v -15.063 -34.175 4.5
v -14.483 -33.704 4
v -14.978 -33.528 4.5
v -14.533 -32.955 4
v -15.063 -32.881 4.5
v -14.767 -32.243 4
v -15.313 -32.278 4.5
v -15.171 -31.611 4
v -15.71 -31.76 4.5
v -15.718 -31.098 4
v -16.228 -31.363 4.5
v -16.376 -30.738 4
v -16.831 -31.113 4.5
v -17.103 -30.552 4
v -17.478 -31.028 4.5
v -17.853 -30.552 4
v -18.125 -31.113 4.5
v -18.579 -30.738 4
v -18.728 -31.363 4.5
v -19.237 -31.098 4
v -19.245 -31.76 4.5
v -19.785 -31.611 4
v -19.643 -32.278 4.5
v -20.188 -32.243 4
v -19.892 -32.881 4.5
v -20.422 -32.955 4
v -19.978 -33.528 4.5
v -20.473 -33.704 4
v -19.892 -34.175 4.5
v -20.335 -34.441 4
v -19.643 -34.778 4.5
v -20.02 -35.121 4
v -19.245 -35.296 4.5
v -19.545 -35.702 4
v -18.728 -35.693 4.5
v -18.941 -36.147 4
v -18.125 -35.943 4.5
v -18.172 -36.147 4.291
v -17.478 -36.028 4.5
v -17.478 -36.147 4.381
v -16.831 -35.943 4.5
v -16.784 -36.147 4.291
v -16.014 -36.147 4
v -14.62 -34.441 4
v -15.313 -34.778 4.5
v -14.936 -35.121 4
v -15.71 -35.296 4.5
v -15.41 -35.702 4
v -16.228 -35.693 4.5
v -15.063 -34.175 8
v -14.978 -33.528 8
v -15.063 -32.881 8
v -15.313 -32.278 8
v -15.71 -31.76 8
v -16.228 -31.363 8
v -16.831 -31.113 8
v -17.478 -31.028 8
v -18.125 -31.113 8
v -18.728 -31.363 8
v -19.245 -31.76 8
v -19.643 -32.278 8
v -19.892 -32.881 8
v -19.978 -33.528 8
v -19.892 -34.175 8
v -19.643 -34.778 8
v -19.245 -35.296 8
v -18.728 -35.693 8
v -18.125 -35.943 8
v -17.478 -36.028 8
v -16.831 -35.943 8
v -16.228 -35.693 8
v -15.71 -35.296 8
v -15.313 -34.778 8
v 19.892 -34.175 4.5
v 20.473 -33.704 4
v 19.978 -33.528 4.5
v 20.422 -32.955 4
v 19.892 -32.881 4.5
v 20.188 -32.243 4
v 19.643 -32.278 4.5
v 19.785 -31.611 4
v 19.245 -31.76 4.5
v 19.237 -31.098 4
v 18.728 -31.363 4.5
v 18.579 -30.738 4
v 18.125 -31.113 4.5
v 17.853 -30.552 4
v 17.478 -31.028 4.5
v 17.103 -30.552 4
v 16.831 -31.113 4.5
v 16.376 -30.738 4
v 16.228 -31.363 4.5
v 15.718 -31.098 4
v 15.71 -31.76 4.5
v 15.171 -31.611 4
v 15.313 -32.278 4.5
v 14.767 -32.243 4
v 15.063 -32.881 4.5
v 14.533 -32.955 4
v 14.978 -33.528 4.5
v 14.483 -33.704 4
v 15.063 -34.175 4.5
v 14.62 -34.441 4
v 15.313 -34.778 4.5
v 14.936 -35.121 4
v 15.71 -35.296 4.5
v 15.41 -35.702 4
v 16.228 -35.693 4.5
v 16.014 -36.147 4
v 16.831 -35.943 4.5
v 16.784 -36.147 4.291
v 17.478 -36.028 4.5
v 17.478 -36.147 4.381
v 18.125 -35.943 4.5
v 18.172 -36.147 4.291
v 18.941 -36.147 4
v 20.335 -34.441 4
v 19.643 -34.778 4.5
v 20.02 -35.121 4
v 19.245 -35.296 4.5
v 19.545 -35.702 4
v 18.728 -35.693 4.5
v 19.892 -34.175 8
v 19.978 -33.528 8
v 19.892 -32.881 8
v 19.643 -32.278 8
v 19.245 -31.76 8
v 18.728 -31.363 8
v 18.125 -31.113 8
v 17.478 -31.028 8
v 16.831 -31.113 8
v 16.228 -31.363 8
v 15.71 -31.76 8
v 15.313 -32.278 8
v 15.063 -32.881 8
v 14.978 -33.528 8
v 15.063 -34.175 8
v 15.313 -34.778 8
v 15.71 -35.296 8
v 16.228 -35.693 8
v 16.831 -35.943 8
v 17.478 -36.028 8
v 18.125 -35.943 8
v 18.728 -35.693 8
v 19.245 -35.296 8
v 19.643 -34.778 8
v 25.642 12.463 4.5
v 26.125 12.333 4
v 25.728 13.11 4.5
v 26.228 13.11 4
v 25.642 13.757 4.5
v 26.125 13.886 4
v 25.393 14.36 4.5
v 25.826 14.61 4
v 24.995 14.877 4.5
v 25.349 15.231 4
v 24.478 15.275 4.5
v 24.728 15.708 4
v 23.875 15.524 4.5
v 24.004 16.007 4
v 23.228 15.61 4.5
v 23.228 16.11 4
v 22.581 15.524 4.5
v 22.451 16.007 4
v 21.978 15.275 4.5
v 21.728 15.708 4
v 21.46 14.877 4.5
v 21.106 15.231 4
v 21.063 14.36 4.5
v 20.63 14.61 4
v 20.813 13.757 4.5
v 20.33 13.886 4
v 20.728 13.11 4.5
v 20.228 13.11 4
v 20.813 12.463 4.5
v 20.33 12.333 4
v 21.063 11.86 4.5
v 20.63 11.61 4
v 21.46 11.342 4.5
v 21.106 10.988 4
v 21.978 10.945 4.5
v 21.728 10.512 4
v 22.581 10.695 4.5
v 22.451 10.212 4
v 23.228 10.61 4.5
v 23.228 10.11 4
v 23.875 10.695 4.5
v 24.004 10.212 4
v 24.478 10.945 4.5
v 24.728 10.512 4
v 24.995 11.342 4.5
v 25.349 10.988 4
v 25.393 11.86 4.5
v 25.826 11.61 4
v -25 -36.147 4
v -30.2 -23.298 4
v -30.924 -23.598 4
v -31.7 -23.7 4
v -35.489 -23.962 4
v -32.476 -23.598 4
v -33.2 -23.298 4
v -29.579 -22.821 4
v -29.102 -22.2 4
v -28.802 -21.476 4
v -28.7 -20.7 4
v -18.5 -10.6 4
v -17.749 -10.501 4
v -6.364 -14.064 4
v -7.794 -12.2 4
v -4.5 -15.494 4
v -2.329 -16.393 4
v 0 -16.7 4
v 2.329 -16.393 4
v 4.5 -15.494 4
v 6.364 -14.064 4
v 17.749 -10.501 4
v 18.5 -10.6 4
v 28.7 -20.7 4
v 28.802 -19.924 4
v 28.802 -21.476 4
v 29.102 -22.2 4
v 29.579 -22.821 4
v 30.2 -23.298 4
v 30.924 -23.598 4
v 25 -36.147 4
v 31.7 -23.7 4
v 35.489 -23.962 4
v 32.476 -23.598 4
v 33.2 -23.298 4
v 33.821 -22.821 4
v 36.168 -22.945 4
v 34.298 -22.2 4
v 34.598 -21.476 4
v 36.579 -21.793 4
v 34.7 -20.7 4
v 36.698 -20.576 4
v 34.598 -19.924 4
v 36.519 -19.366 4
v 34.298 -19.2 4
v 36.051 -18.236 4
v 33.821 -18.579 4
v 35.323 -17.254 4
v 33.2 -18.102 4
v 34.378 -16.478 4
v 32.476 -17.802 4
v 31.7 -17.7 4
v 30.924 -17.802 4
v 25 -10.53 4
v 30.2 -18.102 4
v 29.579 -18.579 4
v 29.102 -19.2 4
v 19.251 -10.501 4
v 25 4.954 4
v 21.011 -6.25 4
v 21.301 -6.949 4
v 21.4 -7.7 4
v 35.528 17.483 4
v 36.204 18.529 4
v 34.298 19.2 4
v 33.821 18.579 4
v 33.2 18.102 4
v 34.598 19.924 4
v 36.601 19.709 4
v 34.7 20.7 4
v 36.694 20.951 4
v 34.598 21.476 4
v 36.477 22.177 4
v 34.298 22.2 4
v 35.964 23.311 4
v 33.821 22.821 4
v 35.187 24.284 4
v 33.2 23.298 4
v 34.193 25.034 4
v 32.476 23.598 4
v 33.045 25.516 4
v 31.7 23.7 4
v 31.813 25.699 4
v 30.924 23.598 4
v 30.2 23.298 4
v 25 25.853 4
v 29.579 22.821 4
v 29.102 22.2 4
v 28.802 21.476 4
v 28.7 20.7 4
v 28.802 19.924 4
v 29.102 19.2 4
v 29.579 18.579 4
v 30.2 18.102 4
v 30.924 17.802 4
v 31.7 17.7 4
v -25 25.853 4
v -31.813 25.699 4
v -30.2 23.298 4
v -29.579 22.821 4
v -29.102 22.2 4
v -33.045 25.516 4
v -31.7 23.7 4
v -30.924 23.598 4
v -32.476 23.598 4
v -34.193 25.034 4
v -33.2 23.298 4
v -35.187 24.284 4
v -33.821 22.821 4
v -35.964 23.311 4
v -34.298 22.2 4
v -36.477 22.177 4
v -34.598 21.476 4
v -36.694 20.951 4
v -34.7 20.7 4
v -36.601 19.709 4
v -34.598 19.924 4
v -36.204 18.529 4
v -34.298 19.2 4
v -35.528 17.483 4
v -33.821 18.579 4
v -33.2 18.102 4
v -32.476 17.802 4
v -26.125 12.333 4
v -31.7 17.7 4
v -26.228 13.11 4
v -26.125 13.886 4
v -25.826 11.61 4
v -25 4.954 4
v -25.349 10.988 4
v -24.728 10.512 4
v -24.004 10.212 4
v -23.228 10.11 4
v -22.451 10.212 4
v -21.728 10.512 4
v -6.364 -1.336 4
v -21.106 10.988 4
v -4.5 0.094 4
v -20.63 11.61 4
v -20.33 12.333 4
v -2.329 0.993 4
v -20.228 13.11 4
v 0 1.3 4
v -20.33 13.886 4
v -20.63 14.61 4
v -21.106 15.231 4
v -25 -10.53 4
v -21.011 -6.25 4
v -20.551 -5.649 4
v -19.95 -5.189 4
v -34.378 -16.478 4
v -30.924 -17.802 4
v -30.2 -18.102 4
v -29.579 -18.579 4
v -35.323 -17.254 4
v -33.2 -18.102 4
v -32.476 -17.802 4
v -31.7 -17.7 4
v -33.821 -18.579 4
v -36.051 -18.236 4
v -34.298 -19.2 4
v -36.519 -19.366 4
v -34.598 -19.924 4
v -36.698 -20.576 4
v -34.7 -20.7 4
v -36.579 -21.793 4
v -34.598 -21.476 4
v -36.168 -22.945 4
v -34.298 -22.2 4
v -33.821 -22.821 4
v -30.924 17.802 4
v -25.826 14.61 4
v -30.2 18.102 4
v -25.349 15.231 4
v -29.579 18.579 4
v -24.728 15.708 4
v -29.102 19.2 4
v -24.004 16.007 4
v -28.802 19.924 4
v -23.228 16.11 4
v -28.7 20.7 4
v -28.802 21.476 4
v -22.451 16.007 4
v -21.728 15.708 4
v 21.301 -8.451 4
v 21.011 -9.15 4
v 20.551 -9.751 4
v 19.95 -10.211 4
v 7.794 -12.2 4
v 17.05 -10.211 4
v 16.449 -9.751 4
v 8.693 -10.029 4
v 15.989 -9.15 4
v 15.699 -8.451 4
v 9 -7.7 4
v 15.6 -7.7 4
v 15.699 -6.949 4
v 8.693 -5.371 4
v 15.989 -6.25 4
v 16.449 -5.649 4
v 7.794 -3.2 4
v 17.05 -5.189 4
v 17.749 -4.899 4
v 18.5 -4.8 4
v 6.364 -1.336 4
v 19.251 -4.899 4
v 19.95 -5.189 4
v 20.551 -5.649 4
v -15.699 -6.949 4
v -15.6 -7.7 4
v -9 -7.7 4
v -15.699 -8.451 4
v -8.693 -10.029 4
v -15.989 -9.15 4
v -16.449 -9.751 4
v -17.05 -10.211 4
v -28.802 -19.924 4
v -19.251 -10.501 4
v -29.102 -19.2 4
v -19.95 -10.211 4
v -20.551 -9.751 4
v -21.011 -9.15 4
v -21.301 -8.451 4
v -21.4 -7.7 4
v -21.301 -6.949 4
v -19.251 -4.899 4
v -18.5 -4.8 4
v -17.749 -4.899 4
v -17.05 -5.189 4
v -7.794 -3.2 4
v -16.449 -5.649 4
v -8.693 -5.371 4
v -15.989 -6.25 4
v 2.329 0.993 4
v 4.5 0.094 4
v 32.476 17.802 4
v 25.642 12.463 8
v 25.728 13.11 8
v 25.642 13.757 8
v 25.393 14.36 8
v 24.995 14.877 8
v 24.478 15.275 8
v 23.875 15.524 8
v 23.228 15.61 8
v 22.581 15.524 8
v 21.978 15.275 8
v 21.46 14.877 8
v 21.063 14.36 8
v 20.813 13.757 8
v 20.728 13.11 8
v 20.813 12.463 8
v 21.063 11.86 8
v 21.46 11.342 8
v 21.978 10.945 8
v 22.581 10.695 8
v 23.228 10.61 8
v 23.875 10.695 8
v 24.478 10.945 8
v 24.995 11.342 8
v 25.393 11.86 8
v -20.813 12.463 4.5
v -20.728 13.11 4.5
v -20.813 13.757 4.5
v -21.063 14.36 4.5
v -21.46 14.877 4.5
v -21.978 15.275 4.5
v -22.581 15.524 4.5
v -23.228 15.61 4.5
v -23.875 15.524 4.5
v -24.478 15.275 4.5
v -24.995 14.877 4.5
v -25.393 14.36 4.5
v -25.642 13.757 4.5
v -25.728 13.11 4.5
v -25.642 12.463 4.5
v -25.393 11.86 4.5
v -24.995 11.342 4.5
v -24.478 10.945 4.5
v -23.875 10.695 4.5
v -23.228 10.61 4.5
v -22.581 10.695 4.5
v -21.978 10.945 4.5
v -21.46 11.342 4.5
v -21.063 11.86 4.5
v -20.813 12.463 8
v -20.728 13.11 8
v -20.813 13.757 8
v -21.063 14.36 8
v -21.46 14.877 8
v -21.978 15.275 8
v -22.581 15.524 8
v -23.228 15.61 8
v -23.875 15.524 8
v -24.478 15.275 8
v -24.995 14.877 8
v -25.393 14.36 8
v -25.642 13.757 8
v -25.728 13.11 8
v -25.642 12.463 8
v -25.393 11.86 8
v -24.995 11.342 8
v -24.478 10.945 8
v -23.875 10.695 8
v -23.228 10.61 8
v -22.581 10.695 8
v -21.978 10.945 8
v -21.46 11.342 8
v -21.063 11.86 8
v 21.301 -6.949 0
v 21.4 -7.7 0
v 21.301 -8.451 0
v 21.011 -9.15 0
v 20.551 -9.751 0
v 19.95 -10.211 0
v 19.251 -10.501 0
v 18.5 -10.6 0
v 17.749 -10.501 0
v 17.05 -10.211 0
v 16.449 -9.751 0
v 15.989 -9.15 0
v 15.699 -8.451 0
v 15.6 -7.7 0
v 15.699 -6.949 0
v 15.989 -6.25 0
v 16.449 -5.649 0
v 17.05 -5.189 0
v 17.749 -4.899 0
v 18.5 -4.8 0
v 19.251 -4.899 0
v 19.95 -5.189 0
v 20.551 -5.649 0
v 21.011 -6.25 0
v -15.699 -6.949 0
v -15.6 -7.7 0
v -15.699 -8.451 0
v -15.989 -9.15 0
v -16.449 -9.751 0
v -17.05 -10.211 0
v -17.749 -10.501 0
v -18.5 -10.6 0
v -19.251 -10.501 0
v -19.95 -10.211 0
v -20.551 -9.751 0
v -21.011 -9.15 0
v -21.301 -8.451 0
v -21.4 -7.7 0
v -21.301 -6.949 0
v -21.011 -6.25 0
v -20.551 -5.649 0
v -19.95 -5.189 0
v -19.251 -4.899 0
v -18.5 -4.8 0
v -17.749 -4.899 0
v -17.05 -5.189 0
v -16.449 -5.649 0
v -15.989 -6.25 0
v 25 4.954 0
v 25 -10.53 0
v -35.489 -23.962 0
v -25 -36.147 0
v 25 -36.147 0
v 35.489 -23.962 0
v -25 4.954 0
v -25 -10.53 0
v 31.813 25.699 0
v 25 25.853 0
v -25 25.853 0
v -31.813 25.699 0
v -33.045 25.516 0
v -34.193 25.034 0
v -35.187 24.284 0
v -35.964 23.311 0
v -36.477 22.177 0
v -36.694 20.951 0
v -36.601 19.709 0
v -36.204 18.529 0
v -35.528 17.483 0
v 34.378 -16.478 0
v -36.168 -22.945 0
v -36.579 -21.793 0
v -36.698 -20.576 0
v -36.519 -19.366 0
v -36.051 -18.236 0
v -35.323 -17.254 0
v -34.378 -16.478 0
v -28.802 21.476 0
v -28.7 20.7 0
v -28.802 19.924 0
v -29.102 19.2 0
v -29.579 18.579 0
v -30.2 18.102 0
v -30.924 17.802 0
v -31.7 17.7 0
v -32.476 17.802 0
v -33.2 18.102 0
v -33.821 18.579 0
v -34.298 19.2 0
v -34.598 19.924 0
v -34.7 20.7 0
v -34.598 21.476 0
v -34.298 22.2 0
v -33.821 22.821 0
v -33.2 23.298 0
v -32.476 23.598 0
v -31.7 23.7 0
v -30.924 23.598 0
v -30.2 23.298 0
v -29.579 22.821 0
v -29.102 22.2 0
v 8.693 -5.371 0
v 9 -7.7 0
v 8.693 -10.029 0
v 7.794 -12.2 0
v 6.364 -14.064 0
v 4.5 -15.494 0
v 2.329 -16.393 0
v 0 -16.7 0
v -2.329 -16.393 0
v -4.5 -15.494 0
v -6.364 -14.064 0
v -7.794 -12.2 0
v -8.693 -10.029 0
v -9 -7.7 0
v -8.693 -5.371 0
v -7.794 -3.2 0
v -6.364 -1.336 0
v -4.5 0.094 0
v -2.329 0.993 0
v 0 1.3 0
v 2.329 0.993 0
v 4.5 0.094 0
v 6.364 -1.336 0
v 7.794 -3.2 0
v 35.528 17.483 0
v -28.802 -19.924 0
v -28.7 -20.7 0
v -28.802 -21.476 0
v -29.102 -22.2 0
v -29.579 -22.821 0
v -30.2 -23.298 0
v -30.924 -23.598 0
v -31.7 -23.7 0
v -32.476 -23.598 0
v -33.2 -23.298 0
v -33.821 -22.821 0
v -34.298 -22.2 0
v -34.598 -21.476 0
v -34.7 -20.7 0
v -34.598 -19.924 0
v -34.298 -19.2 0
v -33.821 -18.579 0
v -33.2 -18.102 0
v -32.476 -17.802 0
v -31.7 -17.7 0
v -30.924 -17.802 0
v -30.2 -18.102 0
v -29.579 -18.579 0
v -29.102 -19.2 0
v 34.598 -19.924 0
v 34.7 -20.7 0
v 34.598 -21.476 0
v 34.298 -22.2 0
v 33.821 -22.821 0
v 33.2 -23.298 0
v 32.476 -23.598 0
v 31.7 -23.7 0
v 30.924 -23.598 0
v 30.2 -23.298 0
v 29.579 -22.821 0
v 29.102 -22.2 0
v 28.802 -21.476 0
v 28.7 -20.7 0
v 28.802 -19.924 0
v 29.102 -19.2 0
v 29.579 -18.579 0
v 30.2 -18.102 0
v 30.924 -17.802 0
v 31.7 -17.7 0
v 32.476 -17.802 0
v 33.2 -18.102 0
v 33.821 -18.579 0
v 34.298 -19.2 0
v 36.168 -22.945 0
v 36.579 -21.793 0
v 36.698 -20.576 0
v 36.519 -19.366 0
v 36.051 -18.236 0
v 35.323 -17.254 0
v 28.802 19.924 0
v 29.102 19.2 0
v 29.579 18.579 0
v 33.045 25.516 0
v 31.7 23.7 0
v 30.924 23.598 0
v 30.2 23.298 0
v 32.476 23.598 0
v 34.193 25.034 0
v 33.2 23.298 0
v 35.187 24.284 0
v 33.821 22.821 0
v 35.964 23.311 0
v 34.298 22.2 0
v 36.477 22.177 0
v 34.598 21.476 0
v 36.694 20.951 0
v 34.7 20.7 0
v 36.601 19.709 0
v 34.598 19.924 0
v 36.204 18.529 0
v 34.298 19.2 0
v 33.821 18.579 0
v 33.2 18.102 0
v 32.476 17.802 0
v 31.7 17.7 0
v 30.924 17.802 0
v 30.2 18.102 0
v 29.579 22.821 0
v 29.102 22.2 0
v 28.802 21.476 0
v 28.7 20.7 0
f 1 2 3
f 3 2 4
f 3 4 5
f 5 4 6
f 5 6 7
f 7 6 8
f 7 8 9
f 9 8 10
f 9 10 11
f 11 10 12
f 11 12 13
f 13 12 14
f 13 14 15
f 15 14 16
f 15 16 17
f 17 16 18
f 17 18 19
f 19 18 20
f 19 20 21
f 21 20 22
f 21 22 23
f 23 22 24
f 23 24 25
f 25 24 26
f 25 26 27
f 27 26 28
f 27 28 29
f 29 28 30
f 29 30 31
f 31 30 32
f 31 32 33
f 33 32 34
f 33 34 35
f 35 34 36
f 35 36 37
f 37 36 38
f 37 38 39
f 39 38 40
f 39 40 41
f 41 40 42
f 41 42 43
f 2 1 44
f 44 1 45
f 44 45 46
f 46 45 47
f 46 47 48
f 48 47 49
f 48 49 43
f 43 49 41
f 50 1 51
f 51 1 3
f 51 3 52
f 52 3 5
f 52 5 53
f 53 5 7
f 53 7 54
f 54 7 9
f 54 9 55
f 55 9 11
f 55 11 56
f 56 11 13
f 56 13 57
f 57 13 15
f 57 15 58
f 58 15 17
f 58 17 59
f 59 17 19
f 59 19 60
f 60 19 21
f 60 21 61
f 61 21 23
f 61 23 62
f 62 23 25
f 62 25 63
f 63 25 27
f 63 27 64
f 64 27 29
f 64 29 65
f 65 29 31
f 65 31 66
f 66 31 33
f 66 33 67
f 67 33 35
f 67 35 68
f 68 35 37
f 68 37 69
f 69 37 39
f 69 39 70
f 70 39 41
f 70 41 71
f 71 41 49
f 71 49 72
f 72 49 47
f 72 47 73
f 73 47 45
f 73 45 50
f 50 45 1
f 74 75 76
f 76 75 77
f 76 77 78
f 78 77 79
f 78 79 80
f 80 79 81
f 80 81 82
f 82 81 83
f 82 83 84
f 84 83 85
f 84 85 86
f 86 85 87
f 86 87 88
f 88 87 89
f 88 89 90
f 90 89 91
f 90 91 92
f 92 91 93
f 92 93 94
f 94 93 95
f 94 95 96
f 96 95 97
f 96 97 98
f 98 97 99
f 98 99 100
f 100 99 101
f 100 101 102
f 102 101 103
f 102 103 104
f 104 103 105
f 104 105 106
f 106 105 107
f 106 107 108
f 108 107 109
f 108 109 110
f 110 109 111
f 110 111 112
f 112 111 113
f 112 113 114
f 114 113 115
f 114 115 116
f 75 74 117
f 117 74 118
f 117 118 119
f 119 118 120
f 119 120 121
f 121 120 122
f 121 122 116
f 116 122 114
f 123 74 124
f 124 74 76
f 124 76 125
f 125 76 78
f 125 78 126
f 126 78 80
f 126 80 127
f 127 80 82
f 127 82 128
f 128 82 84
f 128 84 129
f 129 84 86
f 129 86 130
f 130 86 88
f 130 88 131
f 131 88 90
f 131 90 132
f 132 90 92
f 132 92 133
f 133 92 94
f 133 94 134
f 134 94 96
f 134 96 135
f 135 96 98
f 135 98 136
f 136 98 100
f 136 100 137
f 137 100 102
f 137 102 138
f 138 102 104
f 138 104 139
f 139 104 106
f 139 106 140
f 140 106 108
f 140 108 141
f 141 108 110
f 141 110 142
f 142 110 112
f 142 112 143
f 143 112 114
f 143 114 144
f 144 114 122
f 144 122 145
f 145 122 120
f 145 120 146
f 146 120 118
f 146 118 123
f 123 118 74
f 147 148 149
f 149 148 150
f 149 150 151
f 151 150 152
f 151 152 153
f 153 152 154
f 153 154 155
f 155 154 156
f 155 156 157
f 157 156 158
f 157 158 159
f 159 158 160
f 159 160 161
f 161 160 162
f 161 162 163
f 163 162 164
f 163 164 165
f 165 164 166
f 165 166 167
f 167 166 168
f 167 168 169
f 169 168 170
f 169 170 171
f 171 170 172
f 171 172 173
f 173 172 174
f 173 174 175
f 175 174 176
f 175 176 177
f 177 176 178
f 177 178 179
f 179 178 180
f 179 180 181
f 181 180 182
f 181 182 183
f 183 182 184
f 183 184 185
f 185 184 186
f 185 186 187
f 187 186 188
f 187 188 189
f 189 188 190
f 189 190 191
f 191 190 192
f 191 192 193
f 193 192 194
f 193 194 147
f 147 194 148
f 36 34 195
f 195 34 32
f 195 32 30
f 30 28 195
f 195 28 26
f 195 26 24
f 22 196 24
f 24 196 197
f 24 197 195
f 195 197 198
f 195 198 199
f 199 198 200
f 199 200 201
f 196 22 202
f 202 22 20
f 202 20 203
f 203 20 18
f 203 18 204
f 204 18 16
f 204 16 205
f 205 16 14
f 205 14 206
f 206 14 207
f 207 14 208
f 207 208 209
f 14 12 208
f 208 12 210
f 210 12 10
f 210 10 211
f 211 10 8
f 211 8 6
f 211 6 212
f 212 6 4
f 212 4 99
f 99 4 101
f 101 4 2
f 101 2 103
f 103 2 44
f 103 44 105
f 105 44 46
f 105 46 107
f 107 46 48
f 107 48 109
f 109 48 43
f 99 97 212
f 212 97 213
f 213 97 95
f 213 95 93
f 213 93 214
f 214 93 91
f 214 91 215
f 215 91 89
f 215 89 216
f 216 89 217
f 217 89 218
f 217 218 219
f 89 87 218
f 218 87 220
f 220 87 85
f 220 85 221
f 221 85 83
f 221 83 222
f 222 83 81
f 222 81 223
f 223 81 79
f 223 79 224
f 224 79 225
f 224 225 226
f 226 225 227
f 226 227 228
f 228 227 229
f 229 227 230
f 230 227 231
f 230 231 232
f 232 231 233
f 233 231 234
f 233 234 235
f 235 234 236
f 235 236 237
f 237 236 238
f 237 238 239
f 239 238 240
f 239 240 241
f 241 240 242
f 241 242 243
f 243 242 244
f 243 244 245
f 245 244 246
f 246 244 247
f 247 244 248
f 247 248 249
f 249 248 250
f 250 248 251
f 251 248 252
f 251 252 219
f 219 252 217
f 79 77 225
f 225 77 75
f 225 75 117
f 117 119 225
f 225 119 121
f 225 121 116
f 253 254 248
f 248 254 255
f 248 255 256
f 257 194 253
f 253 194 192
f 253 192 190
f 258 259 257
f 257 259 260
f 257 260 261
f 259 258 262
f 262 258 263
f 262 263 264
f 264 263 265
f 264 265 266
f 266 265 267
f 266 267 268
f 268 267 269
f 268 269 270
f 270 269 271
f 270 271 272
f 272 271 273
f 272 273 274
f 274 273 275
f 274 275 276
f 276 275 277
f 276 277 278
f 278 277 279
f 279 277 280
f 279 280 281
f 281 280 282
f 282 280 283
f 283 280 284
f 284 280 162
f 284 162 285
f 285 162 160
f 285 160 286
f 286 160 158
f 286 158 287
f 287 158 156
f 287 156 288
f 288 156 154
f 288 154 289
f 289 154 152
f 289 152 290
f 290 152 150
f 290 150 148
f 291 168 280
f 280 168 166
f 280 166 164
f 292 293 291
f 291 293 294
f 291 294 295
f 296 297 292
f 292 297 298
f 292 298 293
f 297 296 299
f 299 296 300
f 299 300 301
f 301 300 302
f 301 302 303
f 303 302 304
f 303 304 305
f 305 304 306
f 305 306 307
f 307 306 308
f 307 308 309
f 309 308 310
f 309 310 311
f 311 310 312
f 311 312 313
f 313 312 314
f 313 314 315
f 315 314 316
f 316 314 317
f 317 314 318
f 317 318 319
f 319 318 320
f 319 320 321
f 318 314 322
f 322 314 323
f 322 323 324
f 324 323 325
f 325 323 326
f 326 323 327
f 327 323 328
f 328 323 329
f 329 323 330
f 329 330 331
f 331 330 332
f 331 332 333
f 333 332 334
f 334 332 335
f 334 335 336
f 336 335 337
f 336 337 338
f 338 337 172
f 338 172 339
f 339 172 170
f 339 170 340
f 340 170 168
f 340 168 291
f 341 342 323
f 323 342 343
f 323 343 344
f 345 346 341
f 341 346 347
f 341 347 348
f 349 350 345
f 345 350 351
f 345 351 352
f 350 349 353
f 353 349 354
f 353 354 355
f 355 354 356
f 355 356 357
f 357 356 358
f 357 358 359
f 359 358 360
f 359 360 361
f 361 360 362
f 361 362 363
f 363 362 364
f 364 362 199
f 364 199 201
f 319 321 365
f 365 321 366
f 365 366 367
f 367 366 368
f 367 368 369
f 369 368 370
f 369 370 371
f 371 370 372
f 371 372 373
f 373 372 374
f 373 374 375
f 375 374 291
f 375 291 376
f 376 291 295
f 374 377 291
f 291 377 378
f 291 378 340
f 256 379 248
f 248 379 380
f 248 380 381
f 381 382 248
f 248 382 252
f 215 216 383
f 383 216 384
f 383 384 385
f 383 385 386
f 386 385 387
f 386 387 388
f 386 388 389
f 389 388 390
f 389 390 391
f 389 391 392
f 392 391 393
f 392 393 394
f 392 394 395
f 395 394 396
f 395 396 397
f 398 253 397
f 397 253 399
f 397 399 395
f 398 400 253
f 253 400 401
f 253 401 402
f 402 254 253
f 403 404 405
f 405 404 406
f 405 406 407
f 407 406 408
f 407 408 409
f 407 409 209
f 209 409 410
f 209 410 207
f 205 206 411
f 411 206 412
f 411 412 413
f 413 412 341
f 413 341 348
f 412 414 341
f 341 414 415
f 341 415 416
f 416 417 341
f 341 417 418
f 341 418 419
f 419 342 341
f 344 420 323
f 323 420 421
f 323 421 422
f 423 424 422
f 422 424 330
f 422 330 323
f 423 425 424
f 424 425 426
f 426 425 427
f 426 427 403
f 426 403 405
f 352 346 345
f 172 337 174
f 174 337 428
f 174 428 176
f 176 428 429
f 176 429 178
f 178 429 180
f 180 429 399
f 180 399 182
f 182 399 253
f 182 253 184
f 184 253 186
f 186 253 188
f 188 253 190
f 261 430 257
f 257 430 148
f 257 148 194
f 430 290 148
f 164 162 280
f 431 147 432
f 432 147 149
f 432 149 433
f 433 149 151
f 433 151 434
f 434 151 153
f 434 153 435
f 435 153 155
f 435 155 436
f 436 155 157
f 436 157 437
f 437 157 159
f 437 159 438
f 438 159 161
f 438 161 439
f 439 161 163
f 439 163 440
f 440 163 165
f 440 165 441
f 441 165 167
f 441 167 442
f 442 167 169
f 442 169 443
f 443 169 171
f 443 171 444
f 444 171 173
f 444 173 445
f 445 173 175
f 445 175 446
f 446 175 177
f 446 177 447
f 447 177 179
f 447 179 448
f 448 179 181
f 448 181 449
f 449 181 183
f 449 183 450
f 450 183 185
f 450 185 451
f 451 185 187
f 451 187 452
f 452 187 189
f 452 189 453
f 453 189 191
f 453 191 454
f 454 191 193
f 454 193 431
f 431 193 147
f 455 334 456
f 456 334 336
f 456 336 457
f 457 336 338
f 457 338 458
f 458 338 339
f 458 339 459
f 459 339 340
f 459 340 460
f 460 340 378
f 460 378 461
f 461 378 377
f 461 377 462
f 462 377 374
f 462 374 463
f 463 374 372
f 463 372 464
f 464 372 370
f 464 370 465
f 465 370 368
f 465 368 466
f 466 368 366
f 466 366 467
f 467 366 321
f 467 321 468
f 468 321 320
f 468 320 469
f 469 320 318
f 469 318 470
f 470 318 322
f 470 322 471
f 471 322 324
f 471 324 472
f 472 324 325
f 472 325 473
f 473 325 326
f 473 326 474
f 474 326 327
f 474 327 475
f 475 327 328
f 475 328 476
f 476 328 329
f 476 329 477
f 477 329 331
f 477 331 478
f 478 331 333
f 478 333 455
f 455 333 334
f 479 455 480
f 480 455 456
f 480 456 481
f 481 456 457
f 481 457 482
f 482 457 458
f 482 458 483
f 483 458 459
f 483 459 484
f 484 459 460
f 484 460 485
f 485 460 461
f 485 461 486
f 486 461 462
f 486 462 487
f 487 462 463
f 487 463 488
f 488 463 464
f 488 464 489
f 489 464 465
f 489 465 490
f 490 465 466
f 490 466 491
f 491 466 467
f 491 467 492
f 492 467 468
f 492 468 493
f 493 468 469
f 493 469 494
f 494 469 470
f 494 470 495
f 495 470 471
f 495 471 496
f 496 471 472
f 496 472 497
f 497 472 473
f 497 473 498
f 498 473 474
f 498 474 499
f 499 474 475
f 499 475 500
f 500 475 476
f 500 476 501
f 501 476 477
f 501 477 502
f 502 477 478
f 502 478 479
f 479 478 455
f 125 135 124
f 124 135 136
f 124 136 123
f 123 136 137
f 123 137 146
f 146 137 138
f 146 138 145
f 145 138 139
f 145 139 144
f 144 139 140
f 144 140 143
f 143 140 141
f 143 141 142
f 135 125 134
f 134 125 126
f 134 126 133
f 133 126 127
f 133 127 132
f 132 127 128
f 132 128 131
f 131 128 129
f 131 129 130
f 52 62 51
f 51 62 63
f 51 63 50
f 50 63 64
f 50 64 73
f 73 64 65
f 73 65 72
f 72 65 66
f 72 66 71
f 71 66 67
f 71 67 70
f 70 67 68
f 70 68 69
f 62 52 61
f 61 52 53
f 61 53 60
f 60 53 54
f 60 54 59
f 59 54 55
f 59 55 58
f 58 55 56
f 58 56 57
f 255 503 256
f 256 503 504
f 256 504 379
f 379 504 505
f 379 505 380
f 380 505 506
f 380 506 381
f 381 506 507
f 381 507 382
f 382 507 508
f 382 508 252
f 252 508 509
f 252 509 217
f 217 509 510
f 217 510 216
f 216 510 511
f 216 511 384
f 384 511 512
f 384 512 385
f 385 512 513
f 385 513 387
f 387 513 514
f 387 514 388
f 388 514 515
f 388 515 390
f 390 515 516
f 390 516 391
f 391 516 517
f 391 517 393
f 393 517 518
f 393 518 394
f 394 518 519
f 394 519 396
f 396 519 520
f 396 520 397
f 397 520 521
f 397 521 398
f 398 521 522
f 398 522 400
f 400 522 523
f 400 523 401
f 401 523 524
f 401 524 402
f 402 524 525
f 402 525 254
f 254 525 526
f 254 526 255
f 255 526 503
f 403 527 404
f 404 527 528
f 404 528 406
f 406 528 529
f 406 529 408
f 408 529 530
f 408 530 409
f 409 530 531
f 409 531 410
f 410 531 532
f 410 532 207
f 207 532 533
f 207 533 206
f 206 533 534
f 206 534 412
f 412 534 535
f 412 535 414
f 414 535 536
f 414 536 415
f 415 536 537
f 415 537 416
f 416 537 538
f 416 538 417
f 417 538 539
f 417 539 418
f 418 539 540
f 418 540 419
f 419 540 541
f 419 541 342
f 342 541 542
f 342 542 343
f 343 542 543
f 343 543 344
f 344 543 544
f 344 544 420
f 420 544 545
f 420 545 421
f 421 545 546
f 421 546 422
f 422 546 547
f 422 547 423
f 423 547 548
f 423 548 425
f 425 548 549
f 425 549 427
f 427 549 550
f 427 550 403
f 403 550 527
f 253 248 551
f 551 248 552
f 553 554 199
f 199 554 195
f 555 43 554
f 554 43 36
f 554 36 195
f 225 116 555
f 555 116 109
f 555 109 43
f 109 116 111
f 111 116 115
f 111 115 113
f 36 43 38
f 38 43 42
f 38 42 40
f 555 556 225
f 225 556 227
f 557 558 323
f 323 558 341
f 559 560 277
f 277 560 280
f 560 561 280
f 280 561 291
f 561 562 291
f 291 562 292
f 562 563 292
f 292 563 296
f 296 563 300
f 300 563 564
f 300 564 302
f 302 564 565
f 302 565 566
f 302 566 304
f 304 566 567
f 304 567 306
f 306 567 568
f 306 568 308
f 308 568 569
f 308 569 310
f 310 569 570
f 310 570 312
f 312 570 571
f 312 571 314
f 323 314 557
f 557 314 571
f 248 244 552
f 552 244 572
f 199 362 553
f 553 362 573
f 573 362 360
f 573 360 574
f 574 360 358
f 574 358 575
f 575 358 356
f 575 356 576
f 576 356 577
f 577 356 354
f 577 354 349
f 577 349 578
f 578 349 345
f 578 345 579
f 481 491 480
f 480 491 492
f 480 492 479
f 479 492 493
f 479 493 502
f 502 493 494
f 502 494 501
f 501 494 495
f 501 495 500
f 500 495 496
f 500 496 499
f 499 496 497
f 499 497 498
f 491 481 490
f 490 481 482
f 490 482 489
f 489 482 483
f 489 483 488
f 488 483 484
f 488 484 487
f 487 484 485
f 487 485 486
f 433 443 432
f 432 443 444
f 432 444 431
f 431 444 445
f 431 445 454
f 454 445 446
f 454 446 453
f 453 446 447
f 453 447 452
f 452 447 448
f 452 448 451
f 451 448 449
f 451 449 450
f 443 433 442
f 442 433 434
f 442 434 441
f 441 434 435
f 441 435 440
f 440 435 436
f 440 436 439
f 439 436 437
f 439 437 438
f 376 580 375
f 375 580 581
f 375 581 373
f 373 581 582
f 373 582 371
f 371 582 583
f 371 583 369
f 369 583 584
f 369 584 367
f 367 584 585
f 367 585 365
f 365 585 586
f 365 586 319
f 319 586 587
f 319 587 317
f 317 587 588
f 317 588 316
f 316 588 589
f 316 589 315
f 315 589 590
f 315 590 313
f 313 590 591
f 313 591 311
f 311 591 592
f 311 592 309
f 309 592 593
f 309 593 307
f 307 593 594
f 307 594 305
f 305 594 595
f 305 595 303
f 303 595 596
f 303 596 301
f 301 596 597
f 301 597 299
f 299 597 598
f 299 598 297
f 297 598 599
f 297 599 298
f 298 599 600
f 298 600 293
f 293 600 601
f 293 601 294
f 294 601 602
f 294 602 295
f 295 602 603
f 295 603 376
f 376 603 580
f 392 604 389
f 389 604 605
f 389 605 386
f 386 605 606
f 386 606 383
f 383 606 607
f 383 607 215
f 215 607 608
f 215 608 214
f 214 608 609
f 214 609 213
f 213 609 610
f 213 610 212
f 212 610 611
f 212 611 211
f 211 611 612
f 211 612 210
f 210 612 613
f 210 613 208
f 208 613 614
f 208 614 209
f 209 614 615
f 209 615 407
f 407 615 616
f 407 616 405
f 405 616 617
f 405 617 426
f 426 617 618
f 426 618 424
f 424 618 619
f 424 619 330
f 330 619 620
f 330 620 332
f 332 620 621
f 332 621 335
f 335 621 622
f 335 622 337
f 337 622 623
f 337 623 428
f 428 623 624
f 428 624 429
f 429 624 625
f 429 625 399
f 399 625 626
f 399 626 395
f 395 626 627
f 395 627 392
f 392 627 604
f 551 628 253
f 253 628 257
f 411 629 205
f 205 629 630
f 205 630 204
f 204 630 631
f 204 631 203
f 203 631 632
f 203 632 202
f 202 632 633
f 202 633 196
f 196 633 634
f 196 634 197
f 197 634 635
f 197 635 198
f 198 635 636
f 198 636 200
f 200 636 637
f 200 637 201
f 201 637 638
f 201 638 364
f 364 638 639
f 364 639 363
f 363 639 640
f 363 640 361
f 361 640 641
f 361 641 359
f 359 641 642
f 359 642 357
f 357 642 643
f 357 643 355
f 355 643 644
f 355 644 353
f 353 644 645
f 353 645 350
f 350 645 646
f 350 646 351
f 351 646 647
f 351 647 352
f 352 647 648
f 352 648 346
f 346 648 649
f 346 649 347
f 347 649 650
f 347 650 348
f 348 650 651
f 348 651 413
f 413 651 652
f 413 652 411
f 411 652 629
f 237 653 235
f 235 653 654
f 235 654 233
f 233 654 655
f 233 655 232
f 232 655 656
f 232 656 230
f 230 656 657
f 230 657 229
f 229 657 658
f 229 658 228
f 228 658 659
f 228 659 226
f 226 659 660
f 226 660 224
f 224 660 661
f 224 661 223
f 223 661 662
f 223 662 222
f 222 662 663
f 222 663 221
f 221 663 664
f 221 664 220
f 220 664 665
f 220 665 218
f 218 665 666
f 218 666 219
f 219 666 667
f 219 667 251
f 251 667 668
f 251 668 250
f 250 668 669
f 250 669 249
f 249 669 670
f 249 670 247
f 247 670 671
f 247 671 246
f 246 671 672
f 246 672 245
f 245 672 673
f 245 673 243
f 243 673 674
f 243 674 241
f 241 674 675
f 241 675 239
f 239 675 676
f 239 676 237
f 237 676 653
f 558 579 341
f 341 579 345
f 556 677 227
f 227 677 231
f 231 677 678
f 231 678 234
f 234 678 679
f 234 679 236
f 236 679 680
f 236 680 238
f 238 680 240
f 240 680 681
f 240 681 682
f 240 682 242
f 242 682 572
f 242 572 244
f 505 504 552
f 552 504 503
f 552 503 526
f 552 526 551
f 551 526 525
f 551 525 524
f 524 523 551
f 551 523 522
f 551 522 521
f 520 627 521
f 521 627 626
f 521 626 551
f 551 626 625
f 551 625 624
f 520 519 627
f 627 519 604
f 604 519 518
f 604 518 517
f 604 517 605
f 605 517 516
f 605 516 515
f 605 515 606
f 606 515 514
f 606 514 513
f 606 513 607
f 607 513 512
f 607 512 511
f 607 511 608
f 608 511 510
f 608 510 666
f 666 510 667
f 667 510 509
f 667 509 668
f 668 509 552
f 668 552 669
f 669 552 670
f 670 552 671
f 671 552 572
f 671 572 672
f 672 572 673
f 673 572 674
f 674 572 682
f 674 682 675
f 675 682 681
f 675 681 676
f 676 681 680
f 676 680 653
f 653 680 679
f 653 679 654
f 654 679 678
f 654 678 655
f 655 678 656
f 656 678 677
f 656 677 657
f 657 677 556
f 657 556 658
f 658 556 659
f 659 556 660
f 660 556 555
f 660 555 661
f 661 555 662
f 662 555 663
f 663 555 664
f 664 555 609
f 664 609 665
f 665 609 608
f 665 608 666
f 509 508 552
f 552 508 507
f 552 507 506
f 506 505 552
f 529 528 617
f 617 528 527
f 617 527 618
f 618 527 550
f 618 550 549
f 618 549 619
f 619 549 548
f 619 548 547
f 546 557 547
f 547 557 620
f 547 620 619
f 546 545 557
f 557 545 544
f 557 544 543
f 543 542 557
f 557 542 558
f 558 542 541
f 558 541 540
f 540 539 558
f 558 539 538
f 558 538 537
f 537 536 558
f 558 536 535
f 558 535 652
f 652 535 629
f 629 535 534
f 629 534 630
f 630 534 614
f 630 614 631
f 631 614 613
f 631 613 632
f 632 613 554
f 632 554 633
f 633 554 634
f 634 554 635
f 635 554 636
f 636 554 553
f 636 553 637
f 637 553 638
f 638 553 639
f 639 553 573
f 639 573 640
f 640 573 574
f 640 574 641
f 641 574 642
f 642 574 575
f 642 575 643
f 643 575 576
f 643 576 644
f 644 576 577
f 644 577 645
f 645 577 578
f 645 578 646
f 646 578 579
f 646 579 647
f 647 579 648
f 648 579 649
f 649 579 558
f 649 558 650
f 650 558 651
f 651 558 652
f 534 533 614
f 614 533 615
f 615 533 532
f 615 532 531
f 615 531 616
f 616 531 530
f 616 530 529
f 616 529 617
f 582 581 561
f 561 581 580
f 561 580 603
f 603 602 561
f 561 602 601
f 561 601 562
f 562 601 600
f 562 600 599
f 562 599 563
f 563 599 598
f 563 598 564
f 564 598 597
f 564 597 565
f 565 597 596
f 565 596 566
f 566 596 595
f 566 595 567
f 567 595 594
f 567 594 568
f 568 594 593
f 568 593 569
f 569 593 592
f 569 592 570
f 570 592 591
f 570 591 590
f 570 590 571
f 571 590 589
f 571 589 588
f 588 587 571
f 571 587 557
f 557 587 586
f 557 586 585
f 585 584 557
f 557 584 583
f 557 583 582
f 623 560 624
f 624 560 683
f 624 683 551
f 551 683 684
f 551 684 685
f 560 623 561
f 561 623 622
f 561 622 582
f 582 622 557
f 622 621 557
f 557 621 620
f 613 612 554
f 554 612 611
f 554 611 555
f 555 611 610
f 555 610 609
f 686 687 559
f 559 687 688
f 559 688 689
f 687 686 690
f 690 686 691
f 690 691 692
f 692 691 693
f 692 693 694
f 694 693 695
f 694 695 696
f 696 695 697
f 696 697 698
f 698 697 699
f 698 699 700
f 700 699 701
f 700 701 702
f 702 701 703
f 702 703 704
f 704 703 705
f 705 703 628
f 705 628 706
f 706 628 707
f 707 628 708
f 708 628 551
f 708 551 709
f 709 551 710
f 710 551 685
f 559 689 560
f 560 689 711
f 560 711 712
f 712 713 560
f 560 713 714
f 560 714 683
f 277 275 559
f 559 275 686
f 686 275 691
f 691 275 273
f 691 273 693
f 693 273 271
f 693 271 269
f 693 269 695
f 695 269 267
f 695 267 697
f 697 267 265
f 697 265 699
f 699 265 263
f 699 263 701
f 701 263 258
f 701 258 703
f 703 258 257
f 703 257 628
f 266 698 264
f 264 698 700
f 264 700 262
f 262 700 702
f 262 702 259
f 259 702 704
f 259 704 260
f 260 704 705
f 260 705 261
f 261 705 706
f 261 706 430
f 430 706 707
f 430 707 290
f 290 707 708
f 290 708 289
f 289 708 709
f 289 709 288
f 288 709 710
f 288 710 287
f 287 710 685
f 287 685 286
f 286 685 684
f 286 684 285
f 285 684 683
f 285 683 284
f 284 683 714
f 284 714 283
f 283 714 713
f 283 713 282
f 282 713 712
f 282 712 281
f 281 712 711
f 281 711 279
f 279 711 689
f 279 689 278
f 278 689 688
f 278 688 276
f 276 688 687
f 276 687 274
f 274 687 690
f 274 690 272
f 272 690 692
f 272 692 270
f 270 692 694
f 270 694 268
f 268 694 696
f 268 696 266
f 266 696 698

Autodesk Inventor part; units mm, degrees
sketch "Sketch1" plane through (0, 0, 0) normal (0, 0, 1) x (1, 0, 0)
  circle A0 centre (0, -7.7) radius 6 construction
  circle A1 centre (18.5, -7.7) radius 2.4 construction
  circle A2 centre (-18.5, -7.7) radius 2.4 construction
  circle A3 centre (0, 12.9) radius 2 construction
  circle A4 centre (-31.7, -20.7) radius 2 construction
  circle A5 centre (31.7, -20.7) radius 2 construction
  circle A6 centre (31.7, 20.7) radius 2 construction
  circle A7 centre (-31.7, 20.7) radius 2 construction
  line L0 (-36.7, -25.7) -> (36.7, -25.7) construction
  line L1 (36.7, -25.7) -> (36.7, 25.7) construction
  line L2 (36.7, 25.7) -> (-36.7, 25.7) construction
  line L3 (-36.7, 25.7) -> (-36.7, -25.7) construction
  circle A8 centre (-31.7, 20.7) radius 3
  circle A9 centre (31.7, 20.7) radius 3
  circle A10 centre (31.7, -20.7) radius 3
  circle A11 centre (-31.7, -20.7) radius 3
  circle A12 centre (-31.7, 20.7) radius 5
  circle A13 centre (31.7, 20.7) radius 5
  circle A14 centre (31.7, -20.7) radius 5
  circle A15 centre (-31.7, -20.7) radius 5
  circle A16 centre (0, -7.7) radius 11
  line L4 (-30.6423, -25.5868) -> (2.3269, -18.4511)
  line L5 (-2.3269, -18.4511) -> (30.6423, -25.5868)
  line L6 (34.378, -16.4776) -> (5.8915, 1.5893)
  line L7 (-34.378, -16.4776) -> (-5.8915, 1.5893)
  line L8 (-28.9219, 24.8572) -> (6.1117, 1.4459)
  line L9 (-35.5281, 17.4835) -> (-8.4217, -14.7764)
  line L10 (-6.1117, 1.4459) -> (28.9219, 24.8572)
  line L11 (35.5281, 17.4835) -> (8.4217, -14.7764)
  circle A17 centre (0, -7.7) radius 9
  point P0 (0, 0)
  dimension "d0" = 1
  dimension "d1" = 2
  dimension "d2" = 5
  dimension "d3" = 3
extrude "Extrusion1" add sketch "Sketch1" along normal blind 4
ref_plane "Work Plane1" through (-29.8485, -37.5485, 6) normal (0, 0, 1) x (1, 0, 0)
ref_plane "Work Plane3" through (-29.8485, -37.5485, 8) normal (0, 0, 1) x (1, 0, 0)
sketch "Sketch2" plane through (0, 0, 4) normal (0, 0, 1) x (1, 0, 0)
  circle A0 centre (0, -7.7) radius 28.486 construction
  circle A1 centre (31.7, -20.7) radius 3 construction
  line L0 (0, -18.9547) -> (30.6423, -25.5868) construction
  arc A2 (30.6423, -25.5868) -> (34.378, -16.4776) centre (31.7, -20.7) ccw construction
  line L1 (34.378, -16.4776) -> (16.5128, -5.147) construction
  line L2 (16.5128, -5.147) -> (35.5281, 17.4835) construction
  arc A3 (35.5281, 17.4835) -> (28.9219, 24.8572) centre (31.7, 20.7) ccw construction
  line L3 (28.9219, 24.8572) -> (0, 5.53) construction
  line L4 (0, 5.53) -> (-28.9219, 24.8572) construction
  arc A4 (-28.9219, 24.8572) -> (-35.5281, 17.4835) centre (-31.7, 20.7) ccw construction
  line L5 (-35.5281, 17.4835) -> (-16.5128, -5.147) construction
  line L6 (-16.5128, -5.147) -> (-34.378, -16.4776) construction
  arc A5 (-34.378, -16.4776) -> (-30.6423, -25.5868) centre (-31.7, -20.7) ccw construction
  line L7 (-30.6423, -25.5868) -> (0, -18.9547) construction
  circle A6 centre (0, -7.7) radius 9 construction
  circle A7 centre (-31.7, -20.7) radius 3 construction
  circle A8 centre (-31.7, 20.7) radius 3 construction
  circle A9 centre (31.7, 20.7) radius 3 construction
  line L8 (0, -7.7) -> (31.7, 20.7) construction
  line L9 (0, -7.7) -> (-31.7, 20.7) construction
  circle A10 centre (23.2277, 13.1097) radius 2.7 construction
  circle A11 centre (-23.2277, 13.1097) radius 2.7 construction
  circle A12 centre (-23.2277, 13.1097) radius 2.5
  circle A13 centre (23.2277, 13.1097) radius 2.5
  point P0 (0, 0)
  dimension "d7" = 0.2
  dimension "d8" = 5
extrude "Extrusion2" add sketch "Sketch2" along normal up to surface (4 mm away)
sketch "Sketch5" plane through (0, 0, 4) normal (0, 0, 1) x (1, 0, 0)
  circle A0 centre (-23.2277, 13.1097) radius 2.5 construction
  circle A1 centre (23.2277, 13.1097) radius 2.5 construction
  circle A2 centre (31.7, -20.7) radius 3 construction
  line L0 (0, -18.9547) -> (30.6423, -25.5868) projected
  arc A3 (30.6423, -25.5868) -> (34.378, -16.4776) centre (31.7, -20.7) ccw projected
  line L1 (34.378, -16.4776) -> (16.5128, -5.147) construction
  line L2 (16.5128, -5.147) -> (35.5281, 17.4835) construction
  arc A4 (35.5281, 17.4835) -> (28.9219, 24.8572) centre (31.7, 20.7) ccw projected
  line L3 (28.9219, 24.8572) -> (0, 5.53) projected
  line L4 (0, 5.53) -> (-28.9219, 24.8572) projected
  arc A5 (-28.9219, 24.8572) -> (-35.5281, 17.4835) centre (-31.7, 20.7) ccw projected
  line L5 (-35.5281, 17.4835) -> (-16.5128, -5.147) construction
  line L6 (-16.5128, -5.147) -> (-34.378, -16.4776) construction
  arc A6 (-34.378, -16.4776) -> (-30.6423, -25.5868) centre (-31.7, -20.7) ccw projected
  line L7 (-30.6423, -25.5868) -> (0, -18.9547) projected
  circle A7 centre (0, -7.7) radius 9 construction
  circle A8 centre (-31.7, -20.7) radius 3 construction
  circle A9 centre (-31.7, 20.7) radius 3 construction
  circle A10 centre (31.7, 20.7) radius 3 construction
  line L8 (16.5128, -5.147) -> (-16.5128, -5.147) construction
  line L9 (0, -18.9547) -> (0, 5.53) construction
  line L10 (-25, 25.853) -> (-25, -36.147)
  line L11 (-25, -36.147) -> (25, -36.147)
  line L12 (25, -36.147) -> (25, 25.853)
  line L13 (25, 25.853) -> (-25, 25.853)
  line L14 (-25, 25.853) -> (25, -36.147) construction
  line L15 (-25, -36.147) -> (25, 25.853) construction
  circle A11 centre (0, -7.7) radius 9
  circle A12 centre (0, -7.7) radius 9 projected
  line L16 (-25, -36.147) -> (-35.4893, -23.962)
  arc A13 (-34.378, -16.4776) -> (-30.6423, -25.5868) centre (-31.7, -20.7) ccw projected
  line L17 (25, -36.147) -> (35.4893, -23.962)
  arc A14 (30.6423, -25.5868) -> (34.378, -16.4776) centre (31.7, -20.7) ccw projected
  line L18 (-25, 25.853) -> (-31.8132, 25.6987)
  arc A15 (-28.9219, 24.8572) -> (-35.5281, 17.4835) centre (-31.7, 20.7) ccw projected
  line L19 (25, 25.853) -> (31.8132, 25.6987)
  arc A16 (35.5281, 17.4835) -> (28.9219, 24.8572) centre (31.7, 20.7) ccw projected
  point P0 (0, 0)
  point P1 (0, -5.147)
  dimension "d17" = 62
  dimension "d18" = 50
extrude "Extrusion5" add sketch "Sketch5" against normal up to surface (4 mm away)
sketch "Sketch4" plane through (0, 0, 4) normal (0, 0, 1) x (1, 0, 0)
  circle A0 centre (-18.5, -7.7) radius 2.4 construction
  circle A1 centre (18.5, -7.7) radius 2.4 construction
  circle A2 centre (18.5, -7.7) radius 2.9
  circle A3 centre (-18.5, -7.7) radius 2.9
  point P0 (0, 0)
  dimension "d14" = 0.5
extrude "Extrusion4" cut sketch "Sketch4" against normal up to surface (4 mm away)
sketch "Sketch6" plane through (0, 0, 4) normal (0, 0, 1) x (1, 0, 0)
  circle A0 centre (18.5, -7.7) radius 2.9 construction
  circle A1 centre (-18.5, -7.7) radius 2.9 construction
  circle A2 centre (-31.7, -20.7) radius 3 construction
  circle A3 centre (-31.7, 20.7) radius 3 construction
  circle A4 centre (0, -7.7) radius 9 construction
  circle A5 centre (31.7, 20.7) radius 3 construction
  arc A6 (35.4893, -23.962) -> (34.378, -16.4776) centre (31.7, -20.7) ccw construction
  line L0 (34.378, -16.4776) -> (25, -10.5299) construction
  line L1 (25, -10.5299) -> (25, 4.9538) construction
  line L2 (25, 4.9538) -> (35.5281, 17.4835) construction
  arc A7 (35.5281, 17.4835) -> (31.8132, 25.6987) centre (31.7, 20.7) ccw construction
  line L3 (25, 25.853) -> (-25, 25.853) construction
  arc A8 (-31.8132, 25.6987) -> (-35.5281, 17.4835) centre (-31.7, 20.7) ccw construction
  line L4 (-35.5281, 17.4835) -> (-25, 4.9538) construction
  line L5 (-25, 4.9538) -> (-25, -10.5299) construction
  line L6 (-25, -10.5299) -> (-34.378, -16.4776) construction
  arc A9 (-34.378, -16.4776) -> (-35.4893, -23.962) centre (-31.7, -20.7) ccw construction
  line L7 (-25, -36.147) -> (25, -36.147) construction
  circle A10 centre (31.7, -20.7) radius 3 construction
  line L8 (0, -7.7) -> (31.7, -20.7) construction
  line L9 (0, -7.7) -> (-31.7, -20.7) construction
  circle A11 centre (23.2277, 13.1097) radius 2.5 projected
  line L10 (31.8132, 25.6987) -> (25, 25.853) projected
  line L11 (-25, 25.853) -> (-31.8132, 25.6987) projected
  line L12 (-35.4893, -23.962) -> (-25, -36.147) projected
  line L13 (25, -36.147) -> (35.4893, -23.962) projected
  circle A12 centre (23.2277, 13.1097) radius 2.5 projected
  circle A13 centre (-23.2277, 13.1097) radius 2.5 projected
  circle A14 centre (17.4777, -33.5282) radius 2.5
  circle A15 centre (0, -7.7) radius 31.186 construction
  circle A16 centre (-17.4777, -33.5282) radius 2.5
  circle A17 centre (-23.2277, 13.1097) radius 2.5 projected
  arc A18 (19.1487, 13.5246) -> (-19.1487, 13.5246) centre (0, -7.7) ccw projected
  arc A19 (-19.2697, 12.04) -> (-19.1487, 13.5246) centre (-23.2277, 13.1097) ccw projected
  arc A20 (19.2697, 12.04) -> (-19.2697, 12.04) centre (0, -7.7) ccw projected
  arc A21 (19.1487, 13.5246) -> (19.2697, 12.04) centre (23.2277, 13.1097) ccw projected
  point P0 (0, 0)
  point P1 (23.7277, 10.2129)
  point P2 (20.4031, 13.9239)
  dimension "d25" = 5.75
  dimension "d26" = 0
ref_plane "Work Plane2" through (-27.235, -34.935, 21) normal (0, 0, 1) x (1, 0, 0)
extrude "Extrusion6" add sketch "Sketch6" along normal up to surface (4 mm away) contours A14 | A16
chamfer "Chamfer1" distance 0.5 angle 45 4 edges at (-25.7277, 13.1097, 4) (20.7277, 13.1097, 4) (14.9777, -33.5282, 4) (-19.9777, -33.5282, 4)
properties part number "adpaterPlate"
